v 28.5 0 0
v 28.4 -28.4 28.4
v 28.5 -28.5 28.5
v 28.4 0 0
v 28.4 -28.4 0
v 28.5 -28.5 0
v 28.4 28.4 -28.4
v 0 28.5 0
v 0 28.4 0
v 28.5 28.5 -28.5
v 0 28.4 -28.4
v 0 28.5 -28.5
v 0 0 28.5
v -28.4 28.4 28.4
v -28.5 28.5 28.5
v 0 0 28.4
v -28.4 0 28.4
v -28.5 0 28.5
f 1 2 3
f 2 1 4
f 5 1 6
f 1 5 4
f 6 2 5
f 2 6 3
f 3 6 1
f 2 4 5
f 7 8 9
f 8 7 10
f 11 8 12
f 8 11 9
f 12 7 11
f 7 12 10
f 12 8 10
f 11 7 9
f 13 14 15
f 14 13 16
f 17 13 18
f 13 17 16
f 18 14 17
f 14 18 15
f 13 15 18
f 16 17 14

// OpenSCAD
// file: def.scad
total_size = 57;

round_radius = 1;
sticker_margin = 2.5;
sticker_round_radius = 0.75;
inf = total_size * 10;

theta = atan(sqrt(2));

cut1_rot = [-theta, 0, -45];
sticker_dif_cut1_dis = total_size / 2 / tan(theta) - round_radius / tan(theta / 2) + round_radius - sticker_margin;
sticker_int_cut1_dis = total_size / 2 / tan(theta) + round_radius * tan(theta / 2) - round_radius + sticker_margin;

module _cube() {
    cube([total_size - round_radius * 2, total_size - round_radius * 2, total_size - round_radius * 2], center = true);
}

module _cut1() {
    translate([-inf, -inf, 0])
        cube([inf * 2, inf * 2, inf]);
}

module _int_cut1() {
    translate([-inf, -inf, round_radius])
        cube([inf * 2, inf * 2, inf]);
}

module _sticker_int_cut1() {
    rotate([-90, 0, 0])
        translate([-inf, -inf, sticker_int_cut1_dis])
            cube([inf * 2, inf * 2, inf]);
}

module _sticker_dif_cut1() {
    rotate([-90, 0, 0])
        translate([-inf, -inf, sticker_dif_cut1_dis])
            cube([inf * 2, inf * 2, inf]);
}

module _sticker_base() {
    translate([0, 0, total_size / 2])
        cube([total_size - sticker_margin * 2, total_size - sticker_margin * 2, 0.1], center = true);
}
// main file
include <def.scad>

module selector_cw() {
    difference() {
        cube([total_size, total_size, total_size], center = true);
        for (vec = [[-45, 0, 0], [180, 0, 0], [90, 0, -45]])
            rotate(vec)
                _cut1();
        cube([total_size - 0.2, total_size - 0.2, total_size - 0.2], center = true);
    }
}


for (vec = [[0, 0, 0], [90, 0, 90], [-90, -90, 0]])
    rotate(vec)
        selector_cw();
